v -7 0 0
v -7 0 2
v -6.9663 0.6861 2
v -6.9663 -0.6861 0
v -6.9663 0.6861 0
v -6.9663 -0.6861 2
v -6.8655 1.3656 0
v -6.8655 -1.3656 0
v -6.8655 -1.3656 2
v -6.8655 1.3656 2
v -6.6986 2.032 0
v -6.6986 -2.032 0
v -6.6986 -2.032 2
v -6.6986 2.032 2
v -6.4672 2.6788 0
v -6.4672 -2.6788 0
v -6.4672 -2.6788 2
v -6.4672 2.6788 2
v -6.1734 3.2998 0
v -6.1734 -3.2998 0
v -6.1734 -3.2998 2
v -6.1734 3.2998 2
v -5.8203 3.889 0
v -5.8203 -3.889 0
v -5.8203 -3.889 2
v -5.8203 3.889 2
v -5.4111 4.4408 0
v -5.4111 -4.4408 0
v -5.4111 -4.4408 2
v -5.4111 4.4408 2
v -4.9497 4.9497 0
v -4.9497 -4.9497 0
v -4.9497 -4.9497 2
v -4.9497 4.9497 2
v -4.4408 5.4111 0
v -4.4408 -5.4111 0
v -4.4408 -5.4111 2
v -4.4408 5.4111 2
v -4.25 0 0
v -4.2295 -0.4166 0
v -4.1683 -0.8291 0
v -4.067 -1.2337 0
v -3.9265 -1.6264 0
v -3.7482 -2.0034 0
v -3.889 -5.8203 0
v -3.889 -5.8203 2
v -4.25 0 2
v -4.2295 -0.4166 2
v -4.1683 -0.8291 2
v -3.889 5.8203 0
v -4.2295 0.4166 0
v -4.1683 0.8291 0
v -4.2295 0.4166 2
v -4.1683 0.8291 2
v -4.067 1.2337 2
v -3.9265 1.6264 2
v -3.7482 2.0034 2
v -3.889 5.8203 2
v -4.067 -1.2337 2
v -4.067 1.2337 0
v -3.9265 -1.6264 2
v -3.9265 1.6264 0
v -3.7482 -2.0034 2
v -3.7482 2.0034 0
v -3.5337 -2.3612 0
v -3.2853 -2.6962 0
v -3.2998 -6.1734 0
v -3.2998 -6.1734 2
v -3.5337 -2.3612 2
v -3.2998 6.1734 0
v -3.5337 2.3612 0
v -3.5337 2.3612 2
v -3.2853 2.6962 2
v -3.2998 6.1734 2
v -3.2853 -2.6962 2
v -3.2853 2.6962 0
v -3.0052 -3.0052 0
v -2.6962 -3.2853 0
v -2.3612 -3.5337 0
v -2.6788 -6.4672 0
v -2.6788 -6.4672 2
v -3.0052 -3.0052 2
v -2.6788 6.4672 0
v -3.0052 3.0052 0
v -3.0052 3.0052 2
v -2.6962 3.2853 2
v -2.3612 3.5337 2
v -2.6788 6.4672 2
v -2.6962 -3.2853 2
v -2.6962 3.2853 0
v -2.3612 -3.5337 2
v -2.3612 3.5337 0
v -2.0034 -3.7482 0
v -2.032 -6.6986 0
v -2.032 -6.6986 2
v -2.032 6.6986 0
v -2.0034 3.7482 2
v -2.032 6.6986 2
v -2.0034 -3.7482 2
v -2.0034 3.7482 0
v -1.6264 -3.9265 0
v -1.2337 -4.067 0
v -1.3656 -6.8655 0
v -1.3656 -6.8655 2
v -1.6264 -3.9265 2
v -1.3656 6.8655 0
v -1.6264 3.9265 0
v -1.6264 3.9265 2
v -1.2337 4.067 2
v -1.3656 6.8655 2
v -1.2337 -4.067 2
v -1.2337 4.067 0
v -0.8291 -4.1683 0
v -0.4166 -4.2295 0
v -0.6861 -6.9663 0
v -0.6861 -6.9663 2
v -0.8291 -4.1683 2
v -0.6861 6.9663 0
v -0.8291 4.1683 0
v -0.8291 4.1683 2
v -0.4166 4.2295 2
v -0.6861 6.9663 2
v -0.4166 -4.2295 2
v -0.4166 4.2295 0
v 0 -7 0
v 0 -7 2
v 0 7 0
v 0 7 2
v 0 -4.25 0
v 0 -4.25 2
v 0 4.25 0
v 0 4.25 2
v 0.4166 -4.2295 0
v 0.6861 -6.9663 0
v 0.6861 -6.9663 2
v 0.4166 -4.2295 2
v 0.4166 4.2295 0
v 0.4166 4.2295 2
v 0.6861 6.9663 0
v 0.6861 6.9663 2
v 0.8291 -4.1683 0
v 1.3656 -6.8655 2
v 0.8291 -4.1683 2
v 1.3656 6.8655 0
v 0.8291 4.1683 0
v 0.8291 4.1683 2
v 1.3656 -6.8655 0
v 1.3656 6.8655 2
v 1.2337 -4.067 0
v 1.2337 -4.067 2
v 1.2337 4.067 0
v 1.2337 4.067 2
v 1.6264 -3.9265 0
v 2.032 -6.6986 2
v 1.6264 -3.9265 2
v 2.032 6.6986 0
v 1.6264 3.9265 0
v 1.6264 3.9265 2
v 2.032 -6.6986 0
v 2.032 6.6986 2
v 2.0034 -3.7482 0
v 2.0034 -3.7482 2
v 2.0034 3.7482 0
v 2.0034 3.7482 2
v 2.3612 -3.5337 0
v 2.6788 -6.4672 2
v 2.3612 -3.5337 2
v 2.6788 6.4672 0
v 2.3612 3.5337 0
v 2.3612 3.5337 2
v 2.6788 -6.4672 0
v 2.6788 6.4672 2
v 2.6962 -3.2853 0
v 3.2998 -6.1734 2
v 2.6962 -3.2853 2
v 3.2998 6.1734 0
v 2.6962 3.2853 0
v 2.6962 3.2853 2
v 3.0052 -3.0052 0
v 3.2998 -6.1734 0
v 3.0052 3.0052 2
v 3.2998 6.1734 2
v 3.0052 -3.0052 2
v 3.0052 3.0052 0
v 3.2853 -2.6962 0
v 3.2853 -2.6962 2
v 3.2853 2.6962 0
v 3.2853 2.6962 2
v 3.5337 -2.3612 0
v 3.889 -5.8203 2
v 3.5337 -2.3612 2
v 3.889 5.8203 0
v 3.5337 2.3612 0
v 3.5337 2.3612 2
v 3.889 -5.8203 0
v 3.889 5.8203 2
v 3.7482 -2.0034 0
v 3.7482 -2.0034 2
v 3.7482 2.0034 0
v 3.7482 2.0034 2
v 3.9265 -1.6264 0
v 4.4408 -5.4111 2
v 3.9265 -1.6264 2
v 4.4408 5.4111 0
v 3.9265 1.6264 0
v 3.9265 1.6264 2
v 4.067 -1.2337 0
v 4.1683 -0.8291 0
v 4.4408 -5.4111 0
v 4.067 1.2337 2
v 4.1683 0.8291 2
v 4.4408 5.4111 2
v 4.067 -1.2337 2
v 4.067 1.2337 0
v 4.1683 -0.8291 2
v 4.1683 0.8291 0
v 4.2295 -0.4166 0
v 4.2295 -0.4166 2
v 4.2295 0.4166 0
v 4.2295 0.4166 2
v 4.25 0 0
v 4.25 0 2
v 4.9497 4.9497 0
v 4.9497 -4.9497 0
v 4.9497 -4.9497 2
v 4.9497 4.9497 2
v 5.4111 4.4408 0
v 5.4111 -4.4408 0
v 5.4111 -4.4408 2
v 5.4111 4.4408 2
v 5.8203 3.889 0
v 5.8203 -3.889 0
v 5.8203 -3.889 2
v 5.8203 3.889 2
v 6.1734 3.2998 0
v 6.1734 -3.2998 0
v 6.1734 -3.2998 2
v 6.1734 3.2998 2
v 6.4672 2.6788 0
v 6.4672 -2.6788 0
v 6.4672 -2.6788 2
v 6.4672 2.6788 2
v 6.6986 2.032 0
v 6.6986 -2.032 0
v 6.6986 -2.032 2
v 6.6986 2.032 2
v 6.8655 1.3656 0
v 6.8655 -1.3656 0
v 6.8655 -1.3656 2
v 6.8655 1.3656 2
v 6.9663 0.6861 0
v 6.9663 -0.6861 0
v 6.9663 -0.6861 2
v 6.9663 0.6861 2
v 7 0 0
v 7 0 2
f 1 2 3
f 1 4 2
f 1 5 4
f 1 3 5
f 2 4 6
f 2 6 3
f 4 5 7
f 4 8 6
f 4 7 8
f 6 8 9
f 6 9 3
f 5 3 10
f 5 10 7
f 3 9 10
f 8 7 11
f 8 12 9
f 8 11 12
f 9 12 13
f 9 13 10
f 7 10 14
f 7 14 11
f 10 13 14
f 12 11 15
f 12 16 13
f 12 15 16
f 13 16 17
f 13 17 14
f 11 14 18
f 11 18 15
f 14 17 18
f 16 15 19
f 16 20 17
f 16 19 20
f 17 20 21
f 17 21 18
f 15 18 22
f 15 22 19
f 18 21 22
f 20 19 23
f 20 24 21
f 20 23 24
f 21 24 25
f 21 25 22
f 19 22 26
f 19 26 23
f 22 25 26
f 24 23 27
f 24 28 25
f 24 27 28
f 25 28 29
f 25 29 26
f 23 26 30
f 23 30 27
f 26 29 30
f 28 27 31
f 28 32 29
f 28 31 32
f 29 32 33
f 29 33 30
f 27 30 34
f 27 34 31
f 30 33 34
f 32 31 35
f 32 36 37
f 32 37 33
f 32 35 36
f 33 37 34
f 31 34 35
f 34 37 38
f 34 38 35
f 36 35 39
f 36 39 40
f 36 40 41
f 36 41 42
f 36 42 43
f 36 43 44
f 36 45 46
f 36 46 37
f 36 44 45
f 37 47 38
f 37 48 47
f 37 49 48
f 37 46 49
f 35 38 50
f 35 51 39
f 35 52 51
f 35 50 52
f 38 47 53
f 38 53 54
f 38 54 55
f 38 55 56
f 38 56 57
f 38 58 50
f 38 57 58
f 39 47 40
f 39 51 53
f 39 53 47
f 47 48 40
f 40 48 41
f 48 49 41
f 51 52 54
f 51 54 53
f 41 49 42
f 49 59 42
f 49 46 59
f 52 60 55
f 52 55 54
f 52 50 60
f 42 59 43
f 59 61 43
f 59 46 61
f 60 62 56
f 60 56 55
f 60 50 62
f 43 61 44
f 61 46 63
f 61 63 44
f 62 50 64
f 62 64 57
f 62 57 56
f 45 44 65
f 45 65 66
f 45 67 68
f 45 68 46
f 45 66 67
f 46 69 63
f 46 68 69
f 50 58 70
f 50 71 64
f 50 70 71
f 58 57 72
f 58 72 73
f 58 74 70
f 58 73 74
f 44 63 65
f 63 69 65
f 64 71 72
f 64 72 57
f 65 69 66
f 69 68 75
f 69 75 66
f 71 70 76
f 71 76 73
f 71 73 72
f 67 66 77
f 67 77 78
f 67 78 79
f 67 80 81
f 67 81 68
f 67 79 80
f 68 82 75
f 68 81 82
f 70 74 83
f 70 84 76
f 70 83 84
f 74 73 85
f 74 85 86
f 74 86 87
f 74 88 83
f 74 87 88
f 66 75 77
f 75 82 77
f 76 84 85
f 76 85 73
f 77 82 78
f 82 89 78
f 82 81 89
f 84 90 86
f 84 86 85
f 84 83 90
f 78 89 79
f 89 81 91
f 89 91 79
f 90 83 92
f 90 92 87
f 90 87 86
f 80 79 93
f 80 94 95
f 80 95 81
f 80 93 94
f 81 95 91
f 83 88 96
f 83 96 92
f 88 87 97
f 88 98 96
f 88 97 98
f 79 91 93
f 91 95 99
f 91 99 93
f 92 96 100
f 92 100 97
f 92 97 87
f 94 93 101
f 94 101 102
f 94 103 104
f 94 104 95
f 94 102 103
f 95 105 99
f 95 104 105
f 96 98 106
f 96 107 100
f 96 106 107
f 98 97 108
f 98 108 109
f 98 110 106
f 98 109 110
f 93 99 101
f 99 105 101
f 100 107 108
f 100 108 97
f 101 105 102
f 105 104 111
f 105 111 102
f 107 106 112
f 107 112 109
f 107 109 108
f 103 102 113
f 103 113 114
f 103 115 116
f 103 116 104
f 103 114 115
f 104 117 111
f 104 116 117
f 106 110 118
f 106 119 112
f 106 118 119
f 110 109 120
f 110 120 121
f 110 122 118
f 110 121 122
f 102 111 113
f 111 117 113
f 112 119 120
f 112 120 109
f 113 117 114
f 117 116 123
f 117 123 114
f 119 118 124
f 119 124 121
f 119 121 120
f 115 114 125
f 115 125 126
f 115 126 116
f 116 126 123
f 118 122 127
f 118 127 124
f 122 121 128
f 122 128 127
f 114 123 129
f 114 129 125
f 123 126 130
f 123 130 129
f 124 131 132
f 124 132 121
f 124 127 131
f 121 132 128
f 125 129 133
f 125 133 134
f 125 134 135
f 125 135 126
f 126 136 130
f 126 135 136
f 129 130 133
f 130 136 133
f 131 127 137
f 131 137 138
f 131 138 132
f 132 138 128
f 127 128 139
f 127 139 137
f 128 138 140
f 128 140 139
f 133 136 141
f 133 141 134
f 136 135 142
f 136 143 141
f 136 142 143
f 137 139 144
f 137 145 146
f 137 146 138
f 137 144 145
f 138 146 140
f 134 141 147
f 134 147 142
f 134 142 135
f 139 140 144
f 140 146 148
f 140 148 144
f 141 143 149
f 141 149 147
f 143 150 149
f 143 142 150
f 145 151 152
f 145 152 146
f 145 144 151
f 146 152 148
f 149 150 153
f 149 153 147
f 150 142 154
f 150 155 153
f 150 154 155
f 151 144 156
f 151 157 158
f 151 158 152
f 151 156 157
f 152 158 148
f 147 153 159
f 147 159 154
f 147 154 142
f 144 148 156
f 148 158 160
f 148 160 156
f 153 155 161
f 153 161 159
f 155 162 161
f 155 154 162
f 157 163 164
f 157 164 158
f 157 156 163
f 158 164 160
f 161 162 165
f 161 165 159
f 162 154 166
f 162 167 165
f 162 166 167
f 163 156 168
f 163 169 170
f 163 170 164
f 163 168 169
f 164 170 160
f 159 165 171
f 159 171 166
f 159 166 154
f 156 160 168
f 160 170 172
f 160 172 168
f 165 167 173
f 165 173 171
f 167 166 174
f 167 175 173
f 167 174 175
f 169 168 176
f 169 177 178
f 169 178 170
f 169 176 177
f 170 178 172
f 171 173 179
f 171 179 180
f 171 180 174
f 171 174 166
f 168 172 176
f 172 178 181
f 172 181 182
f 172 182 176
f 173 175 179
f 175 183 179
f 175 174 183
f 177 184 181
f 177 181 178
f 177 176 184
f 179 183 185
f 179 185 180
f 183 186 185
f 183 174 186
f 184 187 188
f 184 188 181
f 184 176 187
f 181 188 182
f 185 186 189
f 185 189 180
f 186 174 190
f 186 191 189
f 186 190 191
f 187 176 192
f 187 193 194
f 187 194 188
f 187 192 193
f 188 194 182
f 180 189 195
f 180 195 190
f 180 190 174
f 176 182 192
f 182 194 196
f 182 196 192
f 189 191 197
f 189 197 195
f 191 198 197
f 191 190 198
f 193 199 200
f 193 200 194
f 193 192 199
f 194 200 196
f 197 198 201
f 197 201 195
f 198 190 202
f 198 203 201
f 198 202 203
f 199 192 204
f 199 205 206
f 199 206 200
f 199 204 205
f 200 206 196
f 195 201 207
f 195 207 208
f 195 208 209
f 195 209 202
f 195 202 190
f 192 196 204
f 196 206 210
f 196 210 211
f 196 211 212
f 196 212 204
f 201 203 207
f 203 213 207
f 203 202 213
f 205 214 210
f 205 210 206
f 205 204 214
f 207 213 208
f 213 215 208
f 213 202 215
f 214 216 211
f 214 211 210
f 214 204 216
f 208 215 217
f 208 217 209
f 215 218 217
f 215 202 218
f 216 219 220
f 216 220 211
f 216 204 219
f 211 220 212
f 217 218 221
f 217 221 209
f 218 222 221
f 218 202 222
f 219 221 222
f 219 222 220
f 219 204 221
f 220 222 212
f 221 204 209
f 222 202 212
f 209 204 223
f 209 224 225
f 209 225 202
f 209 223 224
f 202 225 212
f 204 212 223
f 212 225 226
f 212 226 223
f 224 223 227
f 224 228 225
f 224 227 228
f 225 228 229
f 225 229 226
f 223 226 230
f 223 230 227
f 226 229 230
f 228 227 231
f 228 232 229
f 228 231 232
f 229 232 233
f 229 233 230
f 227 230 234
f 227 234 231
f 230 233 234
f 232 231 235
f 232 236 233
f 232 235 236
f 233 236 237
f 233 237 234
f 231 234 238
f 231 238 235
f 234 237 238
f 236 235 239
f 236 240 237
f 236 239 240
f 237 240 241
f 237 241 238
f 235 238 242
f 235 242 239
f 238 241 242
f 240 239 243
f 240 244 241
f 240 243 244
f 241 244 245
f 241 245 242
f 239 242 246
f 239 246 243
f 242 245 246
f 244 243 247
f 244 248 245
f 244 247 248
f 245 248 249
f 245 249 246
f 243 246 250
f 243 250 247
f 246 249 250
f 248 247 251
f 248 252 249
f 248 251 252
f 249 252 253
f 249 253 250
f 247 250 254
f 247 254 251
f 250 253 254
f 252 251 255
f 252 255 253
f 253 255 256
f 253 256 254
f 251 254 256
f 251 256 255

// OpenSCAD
washer_inner_diameter = 8.5;
washer_outer_diameter = 14;
washer_height = 2;

module washer(
    inner_diameter = washer_inner_diameter,
    outer_diameter = washer_outer_diameter,
    height = washer_height
) {
    difference() {
        cylinder(h = height, d = outer_diameter, $fn = 64);
        translate([0, 0, -0.01]) {
            cylinder(h = height + 0.02, d = inner_diameter, $fn = 64);
        }
    }
}

washer();
